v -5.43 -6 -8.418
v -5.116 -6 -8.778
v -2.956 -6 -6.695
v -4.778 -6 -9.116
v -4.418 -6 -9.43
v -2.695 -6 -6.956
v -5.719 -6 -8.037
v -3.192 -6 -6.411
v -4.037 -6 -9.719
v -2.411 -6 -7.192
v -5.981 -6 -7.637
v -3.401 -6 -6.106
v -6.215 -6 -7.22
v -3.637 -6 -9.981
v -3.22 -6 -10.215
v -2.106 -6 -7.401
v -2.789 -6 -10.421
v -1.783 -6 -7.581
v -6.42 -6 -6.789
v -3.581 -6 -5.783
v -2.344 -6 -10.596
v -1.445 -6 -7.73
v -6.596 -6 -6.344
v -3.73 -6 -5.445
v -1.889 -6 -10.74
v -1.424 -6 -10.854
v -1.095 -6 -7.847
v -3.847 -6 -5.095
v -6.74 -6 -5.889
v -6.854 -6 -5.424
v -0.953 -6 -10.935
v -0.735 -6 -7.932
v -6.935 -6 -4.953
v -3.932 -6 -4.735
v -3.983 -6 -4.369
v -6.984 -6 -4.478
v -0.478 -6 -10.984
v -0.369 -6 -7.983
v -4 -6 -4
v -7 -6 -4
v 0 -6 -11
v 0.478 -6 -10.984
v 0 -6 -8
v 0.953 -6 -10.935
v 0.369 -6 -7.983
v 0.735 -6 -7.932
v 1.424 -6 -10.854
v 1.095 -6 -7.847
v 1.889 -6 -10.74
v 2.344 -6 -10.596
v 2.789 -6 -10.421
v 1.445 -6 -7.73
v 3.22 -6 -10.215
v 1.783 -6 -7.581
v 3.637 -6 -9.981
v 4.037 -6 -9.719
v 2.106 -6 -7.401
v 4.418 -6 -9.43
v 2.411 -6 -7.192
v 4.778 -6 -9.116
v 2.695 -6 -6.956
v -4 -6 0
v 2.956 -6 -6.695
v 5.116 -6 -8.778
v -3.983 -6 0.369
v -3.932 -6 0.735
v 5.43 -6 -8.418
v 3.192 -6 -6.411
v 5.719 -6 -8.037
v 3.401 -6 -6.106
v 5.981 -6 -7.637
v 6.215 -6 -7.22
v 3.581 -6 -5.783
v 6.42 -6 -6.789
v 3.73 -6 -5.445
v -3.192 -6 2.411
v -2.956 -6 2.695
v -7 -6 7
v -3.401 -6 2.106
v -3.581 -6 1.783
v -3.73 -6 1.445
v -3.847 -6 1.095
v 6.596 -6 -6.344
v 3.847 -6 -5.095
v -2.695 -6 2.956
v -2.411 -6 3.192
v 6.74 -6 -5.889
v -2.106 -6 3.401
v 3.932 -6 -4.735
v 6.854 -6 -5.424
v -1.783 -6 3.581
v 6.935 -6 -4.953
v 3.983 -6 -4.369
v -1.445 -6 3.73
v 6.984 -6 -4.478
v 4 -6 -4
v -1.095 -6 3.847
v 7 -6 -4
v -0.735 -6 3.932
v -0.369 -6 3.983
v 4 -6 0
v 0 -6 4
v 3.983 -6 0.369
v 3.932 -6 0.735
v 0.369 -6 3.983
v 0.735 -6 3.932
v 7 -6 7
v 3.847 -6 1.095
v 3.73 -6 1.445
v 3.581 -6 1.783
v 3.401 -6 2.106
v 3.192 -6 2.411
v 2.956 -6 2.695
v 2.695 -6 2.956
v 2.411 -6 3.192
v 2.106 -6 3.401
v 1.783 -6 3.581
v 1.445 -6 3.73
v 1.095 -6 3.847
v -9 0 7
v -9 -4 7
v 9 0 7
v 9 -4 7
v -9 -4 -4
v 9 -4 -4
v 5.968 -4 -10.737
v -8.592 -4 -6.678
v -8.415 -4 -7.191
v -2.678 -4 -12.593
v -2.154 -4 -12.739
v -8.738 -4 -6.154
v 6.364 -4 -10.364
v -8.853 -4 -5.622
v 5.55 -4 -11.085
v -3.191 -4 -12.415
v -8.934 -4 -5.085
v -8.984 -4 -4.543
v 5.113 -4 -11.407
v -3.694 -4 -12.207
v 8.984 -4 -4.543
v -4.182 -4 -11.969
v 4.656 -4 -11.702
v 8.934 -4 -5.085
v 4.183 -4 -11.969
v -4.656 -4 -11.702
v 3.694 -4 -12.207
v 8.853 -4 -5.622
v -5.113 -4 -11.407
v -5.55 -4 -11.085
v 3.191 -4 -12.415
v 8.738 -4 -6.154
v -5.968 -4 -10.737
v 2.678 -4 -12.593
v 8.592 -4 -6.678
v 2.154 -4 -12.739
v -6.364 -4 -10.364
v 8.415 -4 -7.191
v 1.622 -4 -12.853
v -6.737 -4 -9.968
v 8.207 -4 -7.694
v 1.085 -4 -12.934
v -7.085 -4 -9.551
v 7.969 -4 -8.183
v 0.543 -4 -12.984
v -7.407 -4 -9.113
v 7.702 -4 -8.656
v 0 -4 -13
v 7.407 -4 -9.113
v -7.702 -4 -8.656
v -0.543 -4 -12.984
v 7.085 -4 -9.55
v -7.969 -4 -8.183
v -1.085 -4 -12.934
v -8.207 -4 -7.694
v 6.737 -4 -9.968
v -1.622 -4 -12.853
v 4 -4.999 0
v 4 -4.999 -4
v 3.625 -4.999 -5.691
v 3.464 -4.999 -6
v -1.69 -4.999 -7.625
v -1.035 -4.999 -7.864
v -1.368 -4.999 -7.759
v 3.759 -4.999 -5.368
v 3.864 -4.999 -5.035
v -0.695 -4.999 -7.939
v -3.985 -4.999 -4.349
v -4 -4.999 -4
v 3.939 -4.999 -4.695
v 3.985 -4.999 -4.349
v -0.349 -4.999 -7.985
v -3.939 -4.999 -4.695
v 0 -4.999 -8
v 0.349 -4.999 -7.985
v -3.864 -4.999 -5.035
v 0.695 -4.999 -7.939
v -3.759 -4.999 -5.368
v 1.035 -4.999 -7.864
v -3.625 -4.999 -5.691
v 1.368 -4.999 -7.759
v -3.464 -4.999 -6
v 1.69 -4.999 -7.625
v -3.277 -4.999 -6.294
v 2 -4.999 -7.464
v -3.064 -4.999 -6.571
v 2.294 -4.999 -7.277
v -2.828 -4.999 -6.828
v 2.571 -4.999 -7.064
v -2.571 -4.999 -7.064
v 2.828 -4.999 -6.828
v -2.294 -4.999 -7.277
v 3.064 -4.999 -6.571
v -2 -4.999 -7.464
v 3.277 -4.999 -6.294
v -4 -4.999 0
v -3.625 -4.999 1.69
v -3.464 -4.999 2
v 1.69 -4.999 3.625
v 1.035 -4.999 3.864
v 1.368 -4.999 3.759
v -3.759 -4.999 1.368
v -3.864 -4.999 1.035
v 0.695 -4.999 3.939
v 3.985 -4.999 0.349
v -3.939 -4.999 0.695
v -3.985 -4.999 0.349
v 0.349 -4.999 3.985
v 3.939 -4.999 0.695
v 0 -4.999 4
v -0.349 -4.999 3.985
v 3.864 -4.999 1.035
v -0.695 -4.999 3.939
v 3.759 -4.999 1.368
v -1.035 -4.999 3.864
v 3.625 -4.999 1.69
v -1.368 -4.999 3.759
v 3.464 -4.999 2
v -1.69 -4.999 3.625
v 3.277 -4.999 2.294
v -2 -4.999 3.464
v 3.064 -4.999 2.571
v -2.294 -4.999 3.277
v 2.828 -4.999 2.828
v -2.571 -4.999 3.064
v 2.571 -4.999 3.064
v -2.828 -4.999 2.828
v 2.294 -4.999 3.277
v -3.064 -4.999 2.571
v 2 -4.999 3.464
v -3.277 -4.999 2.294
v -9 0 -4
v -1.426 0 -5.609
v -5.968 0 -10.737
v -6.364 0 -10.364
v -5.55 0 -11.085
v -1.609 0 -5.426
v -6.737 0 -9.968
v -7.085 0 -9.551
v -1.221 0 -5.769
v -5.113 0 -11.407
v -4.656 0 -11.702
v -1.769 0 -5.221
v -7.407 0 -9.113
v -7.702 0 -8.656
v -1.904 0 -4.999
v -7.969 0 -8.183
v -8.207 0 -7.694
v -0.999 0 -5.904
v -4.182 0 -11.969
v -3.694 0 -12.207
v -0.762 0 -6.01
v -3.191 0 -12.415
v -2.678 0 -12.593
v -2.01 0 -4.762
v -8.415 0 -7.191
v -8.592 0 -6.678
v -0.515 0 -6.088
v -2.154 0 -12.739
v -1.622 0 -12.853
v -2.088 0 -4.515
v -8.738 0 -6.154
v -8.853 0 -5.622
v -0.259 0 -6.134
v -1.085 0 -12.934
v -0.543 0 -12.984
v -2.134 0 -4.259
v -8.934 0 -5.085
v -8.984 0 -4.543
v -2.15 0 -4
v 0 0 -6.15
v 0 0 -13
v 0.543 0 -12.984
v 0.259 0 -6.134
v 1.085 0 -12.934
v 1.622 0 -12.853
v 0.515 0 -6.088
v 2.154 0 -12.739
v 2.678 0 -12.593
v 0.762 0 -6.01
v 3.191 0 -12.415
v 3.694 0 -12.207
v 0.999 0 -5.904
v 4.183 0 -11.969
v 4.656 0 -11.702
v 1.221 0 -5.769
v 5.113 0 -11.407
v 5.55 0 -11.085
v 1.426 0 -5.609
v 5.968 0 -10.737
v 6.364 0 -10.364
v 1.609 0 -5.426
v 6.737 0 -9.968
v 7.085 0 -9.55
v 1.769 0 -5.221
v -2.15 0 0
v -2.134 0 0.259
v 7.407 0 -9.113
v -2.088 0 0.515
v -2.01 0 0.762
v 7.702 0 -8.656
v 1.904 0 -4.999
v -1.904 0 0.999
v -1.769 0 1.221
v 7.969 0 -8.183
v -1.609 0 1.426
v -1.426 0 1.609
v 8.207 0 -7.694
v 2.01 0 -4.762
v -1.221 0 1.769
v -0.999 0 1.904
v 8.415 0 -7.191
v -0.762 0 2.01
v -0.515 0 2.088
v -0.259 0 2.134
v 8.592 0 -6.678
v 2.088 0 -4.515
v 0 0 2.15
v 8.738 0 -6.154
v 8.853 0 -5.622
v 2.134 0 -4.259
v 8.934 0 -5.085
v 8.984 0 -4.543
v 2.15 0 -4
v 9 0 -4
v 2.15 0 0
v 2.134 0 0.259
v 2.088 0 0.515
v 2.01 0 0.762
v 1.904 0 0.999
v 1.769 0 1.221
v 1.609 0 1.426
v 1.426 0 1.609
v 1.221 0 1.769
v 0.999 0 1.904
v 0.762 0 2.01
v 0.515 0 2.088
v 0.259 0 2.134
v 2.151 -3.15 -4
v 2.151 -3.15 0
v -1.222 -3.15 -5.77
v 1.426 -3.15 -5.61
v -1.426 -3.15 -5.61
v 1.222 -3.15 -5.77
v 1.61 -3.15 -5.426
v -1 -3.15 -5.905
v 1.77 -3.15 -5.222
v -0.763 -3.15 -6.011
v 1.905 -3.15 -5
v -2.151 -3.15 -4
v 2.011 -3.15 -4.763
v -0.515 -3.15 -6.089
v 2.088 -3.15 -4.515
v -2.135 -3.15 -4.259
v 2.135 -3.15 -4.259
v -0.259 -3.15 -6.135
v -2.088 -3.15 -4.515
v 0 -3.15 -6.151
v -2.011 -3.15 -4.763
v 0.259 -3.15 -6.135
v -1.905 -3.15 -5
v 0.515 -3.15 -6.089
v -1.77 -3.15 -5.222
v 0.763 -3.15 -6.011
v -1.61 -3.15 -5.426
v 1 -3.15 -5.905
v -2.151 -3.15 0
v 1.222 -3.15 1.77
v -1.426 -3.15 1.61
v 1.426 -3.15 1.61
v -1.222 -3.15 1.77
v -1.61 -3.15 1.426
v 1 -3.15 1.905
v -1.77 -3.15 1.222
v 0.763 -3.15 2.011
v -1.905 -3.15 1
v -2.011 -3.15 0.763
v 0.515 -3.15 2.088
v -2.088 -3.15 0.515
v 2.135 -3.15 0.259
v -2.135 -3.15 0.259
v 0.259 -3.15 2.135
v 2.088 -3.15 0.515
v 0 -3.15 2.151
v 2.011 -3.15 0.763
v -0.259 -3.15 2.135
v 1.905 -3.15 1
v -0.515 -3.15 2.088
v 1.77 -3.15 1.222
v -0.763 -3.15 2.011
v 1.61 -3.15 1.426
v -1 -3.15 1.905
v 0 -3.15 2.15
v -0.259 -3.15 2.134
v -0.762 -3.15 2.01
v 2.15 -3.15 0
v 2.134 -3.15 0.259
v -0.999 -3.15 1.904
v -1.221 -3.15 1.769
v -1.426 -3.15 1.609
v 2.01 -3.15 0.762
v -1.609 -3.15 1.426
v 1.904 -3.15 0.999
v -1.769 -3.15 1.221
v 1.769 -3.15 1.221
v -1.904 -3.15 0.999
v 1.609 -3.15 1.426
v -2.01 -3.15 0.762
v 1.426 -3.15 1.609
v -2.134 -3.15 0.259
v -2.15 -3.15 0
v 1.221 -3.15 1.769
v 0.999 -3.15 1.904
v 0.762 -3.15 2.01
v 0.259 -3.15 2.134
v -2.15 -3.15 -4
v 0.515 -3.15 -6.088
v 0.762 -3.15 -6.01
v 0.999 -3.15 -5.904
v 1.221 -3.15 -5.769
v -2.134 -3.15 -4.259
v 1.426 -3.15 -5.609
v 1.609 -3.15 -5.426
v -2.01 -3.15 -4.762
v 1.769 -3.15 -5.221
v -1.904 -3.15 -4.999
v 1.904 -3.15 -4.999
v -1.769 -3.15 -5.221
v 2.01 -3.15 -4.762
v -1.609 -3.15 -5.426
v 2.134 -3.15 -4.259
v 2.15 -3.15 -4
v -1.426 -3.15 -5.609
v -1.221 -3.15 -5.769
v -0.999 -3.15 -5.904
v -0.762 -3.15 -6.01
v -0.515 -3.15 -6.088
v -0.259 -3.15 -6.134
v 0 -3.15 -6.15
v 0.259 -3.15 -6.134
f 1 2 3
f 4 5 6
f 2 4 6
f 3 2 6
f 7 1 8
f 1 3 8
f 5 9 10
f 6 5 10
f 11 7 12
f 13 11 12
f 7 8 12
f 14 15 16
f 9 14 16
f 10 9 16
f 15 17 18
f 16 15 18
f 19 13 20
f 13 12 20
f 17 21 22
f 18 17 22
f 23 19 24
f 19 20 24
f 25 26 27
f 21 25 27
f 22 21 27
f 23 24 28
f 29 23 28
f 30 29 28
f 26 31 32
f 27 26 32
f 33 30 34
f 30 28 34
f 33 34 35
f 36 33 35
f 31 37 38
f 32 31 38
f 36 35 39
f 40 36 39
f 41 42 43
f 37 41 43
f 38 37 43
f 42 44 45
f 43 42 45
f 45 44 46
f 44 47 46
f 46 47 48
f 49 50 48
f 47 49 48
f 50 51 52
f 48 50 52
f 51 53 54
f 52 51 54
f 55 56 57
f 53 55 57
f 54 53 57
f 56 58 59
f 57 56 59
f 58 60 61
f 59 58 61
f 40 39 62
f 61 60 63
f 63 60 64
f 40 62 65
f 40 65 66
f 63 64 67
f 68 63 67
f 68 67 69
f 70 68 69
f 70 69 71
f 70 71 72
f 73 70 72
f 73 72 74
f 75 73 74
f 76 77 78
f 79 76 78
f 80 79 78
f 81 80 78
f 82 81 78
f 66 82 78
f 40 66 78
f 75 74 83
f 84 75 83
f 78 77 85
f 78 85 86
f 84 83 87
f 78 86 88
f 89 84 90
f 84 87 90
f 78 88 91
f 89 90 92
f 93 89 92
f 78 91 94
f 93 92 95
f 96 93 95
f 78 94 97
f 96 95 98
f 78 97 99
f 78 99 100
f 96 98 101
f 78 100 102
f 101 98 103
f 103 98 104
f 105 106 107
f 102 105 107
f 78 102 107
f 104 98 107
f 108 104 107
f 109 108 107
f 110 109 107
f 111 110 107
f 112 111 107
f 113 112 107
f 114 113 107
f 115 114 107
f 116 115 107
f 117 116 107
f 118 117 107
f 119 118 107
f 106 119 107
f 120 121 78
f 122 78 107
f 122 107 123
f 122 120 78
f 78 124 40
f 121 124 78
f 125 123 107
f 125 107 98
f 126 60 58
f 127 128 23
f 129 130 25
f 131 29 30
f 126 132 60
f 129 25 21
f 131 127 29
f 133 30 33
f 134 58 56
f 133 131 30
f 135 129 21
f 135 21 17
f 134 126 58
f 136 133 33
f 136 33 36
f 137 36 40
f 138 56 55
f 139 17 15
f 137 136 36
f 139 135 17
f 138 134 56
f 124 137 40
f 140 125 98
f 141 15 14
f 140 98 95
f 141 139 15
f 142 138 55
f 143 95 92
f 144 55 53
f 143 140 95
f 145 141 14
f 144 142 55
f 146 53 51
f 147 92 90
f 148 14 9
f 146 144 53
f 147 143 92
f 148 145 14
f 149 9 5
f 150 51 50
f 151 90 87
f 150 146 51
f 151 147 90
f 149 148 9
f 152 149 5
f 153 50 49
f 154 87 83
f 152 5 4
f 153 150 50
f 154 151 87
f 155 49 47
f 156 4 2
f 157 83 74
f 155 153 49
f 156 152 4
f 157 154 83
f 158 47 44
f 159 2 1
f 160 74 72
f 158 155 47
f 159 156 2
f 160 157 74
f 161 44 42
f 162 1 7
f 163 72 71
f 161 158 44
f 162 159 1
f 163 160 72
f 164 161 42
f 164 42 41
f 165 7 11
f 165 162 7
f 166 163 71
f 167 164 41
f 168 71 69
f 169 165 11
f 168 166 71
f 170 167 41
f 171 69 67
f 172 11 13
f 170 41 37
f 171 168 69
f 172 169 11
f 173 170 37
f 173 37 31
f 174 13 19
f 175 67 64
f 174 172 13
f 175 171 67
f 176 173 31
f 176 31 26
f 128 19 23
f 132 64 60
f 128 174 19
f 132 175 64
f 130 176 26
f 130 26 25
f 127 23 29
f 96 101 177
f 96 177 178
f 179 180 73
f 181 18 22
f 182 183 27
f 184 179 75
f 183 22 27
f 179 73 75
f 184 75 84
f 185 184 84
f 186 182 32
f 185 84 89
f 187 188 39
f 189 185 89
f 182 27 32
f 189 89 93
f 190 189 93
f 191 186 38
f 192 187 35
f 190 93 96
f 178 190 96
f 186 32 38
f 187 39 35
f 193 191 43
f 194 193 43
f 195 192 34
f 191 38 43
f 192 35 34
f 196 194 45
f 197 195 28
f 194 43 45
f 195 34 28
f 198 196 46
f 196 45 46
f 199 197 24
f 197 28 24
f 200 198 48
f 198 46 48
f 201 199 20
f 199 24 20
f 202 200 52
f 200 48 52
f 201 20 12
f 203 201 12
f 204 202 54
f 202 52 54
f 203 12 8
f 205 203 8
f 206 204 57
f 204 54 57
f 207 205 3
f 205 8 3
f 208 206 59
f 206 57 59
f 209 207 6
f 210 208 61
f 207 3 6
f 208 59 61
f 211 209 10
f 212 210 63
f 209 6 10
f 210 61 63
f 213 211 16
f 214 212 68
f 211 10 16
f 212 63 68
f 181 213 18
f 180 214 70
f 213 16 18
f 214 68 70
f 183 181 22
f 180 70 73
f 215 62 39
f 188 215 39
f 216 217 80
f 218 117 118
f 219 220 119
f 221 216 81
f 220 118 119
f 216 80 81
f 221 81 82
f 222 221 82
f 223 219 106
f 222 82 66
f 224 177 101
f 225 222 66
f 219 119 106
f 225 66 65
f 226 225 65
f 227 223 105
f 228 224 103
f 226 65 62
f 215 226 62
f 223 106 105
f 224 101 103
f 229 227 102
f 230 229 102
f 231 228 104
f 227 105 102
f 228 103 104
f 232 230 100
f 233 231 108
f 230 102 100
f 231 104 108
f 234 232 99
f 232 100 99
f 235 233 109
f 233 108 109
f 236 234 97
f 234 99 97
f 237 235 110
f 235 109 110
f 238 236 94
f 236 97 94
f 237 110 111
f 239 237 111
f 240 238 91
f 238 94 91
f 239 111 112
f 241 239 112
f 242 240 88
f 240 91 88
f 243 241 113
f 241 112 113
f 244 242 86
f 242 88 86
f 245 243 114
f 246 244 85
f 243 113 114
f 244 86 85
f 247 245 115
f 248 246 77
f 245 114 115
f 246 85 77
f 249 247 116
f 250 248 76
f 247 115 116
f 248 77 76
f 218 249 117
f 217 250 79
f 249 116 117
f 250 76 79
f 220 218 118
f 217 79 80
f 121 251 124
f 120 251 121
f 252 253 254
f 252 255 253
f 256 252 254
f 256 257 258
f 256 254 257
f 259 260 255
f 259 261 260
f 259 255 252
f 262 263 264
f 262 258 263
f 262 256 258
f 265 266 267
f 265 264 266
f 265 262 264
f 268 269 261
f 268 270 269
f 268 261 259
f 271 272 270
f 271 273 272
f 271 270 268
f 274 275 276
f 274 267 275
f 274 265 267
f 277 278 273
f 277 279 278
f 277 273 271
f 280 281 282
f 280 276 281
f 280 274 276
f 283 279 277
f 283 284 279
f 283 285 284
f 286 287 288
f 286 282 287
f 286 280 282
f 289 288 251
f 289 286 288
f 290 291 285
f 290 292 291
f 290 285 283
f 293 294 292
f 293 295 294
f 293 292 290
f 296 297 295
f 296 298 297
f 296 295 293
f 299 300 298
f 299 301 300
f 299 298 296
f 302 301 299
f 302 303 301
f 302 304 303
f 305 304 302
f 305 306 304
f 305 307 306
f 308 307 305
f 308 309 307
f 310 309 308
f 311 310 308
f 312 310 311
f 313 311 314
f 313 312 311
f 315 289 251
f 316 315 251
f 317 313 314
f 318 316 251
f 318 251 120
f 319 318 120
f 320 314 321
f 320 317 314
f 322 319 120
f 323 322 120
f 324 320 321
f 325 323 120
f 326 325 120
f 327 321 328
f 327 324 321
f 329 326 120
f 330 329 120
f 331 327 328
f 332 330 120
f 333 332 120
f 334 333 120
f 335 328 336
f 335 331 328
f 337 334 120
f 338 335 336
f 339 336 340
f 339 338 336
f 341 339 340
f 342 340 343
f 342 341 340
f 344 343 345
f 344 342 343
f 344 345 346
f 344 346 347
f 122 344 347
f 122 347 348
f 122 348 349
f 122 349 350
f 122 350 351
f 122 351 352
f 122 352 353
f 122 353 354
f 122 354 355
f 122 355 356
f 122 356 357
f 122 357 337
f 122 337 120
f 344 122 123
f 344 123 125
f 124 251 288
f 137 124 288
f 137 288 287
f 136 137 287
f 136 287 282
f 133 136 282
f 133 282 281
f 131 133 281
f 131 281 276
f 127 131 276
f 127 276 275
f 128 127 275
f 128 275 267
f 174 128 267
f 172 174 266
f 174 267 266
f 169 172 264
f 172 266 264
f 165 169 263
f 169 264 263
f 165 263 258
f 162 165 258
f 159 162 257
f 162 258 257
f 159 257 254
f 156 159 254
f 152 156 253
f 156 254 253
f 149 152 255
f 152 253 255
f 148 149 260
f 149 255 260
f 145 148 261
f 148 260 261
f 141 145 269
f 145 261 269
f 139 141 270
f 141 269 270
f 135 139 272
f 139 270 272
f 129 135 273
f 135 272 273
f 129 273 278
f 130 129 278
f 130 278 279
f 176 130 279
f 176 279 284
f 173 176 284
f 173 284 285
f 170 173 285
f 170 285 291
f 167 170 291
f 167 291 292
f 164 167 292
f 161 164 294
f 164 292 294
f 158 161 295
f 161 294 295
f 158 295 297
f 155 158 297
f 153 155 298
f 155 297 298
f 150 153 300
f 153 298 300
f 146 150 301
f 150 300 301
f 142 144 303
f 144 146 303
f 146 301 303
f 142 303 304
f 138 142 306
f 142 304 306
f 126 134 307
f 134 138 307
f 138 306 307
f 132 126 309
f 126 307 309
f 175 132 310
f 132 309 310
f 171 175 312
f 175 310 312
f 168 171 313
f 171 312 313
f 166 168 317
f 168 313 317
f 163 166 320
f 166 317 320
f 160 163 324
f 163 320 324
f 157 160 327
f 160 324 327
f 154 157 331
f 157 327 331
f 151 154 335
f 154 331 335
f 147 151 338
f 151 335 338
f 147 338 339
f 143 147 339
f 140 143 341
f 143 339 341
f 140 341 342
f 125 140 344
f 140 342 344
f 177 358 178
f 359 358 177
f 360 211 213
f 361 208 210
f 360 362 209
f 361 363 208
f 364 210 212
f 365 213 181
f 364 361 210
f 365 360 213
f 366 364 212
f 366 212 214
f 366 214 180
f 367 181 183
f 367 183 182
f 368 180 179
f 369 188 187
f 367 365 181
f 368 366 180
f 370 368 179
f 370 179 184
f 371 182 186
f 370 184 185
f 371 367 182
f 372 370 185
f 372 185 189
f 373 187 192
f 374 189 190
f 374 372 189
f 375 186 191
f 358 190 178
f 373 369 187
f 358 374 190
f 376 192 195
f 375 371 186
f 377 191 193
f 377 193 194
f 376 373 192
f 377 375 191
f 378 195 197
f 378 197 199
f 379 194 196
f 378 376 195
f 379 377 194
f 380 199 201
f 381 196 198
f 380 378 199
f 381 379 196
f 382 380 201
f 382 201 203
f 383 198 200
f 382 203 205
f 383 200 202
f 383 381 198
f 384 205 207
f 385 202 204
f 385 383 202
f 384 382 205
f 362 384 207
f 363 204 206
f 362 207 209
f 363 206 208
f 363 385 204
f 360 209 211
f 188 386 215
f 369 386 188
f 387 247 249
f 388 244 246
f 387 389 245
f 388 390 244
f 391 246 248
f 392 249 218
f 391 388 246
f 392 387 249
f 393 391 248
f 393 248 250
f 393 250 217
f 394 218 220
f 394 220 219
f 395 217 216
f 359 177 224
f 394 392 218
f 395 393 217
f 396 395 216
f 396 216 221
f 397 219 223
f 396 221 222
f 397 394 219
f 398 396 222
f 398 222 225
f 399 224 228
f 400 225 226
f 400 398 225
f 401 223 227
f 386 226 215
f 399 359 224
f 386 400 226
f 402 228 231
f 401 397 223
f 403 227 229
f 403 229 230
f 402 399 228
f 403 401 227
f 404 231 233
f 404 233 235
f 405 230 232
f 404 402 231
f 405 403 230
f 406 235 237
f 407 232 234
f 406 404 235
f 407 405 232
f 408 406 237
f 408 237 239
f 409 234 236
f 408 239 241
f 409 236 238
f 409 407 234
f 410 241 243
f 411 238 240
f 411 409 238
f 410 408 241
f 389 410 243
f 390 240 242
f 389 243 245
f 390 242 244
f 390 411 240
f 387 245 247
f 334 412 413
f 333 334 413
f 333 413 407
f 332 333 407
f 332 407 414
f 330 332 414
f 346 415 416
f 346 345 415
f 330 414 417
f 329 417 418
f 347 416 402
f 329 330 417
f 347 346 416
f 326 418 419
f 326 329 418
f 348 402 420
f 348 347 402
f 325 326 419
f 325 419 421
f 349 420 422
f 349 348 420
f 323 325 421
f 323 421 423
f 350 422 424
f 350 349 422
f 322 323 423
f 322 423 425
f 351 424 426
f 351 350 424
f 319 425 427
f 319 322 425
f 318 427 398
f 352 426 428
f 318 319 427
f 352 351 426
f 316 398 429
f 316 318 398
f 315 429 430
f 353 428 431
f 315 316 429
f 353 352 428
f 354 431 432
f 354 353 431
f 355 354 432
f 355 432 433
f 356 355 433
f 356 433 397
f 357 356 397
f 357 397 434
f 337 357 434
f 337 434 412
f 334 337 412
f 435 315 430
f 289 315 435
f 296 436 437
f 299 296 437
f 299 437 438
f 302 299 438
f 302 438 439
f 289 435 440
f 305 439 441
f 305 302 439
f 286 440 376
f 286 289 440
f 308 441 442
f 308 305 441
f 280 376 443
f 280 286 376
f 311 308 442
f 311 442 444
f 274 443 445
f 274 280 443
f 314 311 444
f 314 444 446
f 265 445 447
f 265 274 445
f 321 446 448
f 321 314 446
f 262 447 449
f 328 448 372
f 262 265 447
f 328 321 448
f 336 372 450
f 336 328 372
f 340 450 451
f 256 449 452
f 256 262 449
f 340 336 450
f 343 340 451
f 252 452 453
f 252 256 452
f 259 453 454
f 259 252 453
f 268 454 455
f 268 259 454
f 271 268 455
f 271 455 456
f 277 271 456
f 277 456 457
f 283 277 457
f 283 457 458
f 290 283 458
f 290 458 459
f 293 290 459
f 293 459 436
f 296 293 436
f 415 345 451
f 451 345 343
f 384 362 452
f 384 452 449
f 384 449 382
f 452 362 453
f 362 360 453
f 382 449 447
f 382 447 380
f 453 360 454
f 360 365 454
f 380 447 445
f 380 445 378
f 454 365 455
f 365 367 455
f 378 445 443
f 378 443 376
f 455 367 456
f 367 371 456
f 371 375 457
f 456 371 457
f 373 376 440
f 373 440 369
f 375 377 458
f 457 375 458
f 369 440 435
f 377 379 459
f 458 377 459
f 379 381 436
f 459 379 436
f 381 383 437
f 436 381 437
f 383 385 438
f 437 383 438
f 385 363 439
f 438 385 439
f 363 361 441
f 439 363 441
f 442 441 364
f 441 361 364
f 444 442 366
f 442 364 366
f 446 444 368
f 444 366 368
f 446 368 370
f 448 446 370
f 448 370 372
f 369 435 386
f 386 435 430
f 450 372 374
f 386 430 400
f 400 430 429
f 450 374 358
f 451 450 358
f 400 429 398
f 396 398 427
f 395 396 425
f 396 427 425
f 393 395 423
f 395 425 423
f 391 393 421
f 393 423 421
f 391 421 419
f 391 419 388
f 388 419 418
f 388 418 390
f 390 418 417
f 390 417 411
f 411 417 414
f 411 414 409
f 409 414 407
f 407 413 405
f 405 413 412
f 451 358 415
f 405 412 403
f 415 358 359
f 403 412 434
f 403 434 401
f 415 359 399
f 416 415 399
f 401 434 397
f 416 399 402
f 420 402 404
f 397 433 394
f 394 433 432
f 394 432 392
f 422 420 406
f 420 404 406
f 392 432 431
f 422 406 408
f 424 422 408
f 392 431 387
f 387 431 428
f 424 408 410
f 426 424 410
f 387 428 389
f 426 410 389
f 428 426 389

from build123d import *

# Parameters (mm, degrees)
PAD_DEPTH       = 6
POCKET_DEPTH    = 2.85
CHAMFER_SIZE    = 1.849
CHAMFER001_SIZE = 2


with BuildPart() as part:
    # Sketch → Pad (new body)
    with BuildSketch(Plane.XZ):
        with BuildLine():
            ThreePointArc((-9, -4.00004), (2e-05, -13.00004), (9, -4))
            Line((9, 7), (9, -4))
            Line((-9, 7), (9, 7))
            Line((-9, -4.00004), (-9, 7))
        make_face()
        with BuildLine():
            ThreePointArc((2.15, 0), (0, 2.15), (-2.15, 0))
            Line((-2.15, 0), (-2.15, -4.00004))
            ThreePointArc((-2.15, -4.00004), (0, -6.15004), (2.15, -4.00004))
            Line((2.15, 0), (2.15, -4.00004))
        make_face(mode=Mode.SUBTRACT)
    extrude(amount=PAD_DEPTH)

    # Sketch001 → Pocket (cut)
    with BuildSketch(Plane.XZ.offset(6)):
        with BuildLine():
            ThreePointArc((4, 0), (0, 4), (-4, 0))
            Line((-4, 0), (-4, -4.00004))
            ThreePointArc((-4, -4.00004), (0, -8.00004), (4, -4.00004))
            Line((4, 0), (4, -4.00004))
        make_face()
    extrude(amount=-POCKET_DEPTH, mode=Mode.SUBTRACT)

    # Chamfer
    chamfer_edges = [part.edges().sort_by_distance(p)[0] for p in [
        (-4, -3.15, -2.00002),
    ]]
    chamfer(chamfer_edges, length=CHAMFER_SIZE)

    # Chamfer001
    chamfer001_edges = [part.edges().sort_by_distance(p)[0] for p in [
        (-9, -6, 1.49998),
    ]]
    chamfer(chamfer001_edges, length=CHAMFER001_SIZE)


solid = part.part
